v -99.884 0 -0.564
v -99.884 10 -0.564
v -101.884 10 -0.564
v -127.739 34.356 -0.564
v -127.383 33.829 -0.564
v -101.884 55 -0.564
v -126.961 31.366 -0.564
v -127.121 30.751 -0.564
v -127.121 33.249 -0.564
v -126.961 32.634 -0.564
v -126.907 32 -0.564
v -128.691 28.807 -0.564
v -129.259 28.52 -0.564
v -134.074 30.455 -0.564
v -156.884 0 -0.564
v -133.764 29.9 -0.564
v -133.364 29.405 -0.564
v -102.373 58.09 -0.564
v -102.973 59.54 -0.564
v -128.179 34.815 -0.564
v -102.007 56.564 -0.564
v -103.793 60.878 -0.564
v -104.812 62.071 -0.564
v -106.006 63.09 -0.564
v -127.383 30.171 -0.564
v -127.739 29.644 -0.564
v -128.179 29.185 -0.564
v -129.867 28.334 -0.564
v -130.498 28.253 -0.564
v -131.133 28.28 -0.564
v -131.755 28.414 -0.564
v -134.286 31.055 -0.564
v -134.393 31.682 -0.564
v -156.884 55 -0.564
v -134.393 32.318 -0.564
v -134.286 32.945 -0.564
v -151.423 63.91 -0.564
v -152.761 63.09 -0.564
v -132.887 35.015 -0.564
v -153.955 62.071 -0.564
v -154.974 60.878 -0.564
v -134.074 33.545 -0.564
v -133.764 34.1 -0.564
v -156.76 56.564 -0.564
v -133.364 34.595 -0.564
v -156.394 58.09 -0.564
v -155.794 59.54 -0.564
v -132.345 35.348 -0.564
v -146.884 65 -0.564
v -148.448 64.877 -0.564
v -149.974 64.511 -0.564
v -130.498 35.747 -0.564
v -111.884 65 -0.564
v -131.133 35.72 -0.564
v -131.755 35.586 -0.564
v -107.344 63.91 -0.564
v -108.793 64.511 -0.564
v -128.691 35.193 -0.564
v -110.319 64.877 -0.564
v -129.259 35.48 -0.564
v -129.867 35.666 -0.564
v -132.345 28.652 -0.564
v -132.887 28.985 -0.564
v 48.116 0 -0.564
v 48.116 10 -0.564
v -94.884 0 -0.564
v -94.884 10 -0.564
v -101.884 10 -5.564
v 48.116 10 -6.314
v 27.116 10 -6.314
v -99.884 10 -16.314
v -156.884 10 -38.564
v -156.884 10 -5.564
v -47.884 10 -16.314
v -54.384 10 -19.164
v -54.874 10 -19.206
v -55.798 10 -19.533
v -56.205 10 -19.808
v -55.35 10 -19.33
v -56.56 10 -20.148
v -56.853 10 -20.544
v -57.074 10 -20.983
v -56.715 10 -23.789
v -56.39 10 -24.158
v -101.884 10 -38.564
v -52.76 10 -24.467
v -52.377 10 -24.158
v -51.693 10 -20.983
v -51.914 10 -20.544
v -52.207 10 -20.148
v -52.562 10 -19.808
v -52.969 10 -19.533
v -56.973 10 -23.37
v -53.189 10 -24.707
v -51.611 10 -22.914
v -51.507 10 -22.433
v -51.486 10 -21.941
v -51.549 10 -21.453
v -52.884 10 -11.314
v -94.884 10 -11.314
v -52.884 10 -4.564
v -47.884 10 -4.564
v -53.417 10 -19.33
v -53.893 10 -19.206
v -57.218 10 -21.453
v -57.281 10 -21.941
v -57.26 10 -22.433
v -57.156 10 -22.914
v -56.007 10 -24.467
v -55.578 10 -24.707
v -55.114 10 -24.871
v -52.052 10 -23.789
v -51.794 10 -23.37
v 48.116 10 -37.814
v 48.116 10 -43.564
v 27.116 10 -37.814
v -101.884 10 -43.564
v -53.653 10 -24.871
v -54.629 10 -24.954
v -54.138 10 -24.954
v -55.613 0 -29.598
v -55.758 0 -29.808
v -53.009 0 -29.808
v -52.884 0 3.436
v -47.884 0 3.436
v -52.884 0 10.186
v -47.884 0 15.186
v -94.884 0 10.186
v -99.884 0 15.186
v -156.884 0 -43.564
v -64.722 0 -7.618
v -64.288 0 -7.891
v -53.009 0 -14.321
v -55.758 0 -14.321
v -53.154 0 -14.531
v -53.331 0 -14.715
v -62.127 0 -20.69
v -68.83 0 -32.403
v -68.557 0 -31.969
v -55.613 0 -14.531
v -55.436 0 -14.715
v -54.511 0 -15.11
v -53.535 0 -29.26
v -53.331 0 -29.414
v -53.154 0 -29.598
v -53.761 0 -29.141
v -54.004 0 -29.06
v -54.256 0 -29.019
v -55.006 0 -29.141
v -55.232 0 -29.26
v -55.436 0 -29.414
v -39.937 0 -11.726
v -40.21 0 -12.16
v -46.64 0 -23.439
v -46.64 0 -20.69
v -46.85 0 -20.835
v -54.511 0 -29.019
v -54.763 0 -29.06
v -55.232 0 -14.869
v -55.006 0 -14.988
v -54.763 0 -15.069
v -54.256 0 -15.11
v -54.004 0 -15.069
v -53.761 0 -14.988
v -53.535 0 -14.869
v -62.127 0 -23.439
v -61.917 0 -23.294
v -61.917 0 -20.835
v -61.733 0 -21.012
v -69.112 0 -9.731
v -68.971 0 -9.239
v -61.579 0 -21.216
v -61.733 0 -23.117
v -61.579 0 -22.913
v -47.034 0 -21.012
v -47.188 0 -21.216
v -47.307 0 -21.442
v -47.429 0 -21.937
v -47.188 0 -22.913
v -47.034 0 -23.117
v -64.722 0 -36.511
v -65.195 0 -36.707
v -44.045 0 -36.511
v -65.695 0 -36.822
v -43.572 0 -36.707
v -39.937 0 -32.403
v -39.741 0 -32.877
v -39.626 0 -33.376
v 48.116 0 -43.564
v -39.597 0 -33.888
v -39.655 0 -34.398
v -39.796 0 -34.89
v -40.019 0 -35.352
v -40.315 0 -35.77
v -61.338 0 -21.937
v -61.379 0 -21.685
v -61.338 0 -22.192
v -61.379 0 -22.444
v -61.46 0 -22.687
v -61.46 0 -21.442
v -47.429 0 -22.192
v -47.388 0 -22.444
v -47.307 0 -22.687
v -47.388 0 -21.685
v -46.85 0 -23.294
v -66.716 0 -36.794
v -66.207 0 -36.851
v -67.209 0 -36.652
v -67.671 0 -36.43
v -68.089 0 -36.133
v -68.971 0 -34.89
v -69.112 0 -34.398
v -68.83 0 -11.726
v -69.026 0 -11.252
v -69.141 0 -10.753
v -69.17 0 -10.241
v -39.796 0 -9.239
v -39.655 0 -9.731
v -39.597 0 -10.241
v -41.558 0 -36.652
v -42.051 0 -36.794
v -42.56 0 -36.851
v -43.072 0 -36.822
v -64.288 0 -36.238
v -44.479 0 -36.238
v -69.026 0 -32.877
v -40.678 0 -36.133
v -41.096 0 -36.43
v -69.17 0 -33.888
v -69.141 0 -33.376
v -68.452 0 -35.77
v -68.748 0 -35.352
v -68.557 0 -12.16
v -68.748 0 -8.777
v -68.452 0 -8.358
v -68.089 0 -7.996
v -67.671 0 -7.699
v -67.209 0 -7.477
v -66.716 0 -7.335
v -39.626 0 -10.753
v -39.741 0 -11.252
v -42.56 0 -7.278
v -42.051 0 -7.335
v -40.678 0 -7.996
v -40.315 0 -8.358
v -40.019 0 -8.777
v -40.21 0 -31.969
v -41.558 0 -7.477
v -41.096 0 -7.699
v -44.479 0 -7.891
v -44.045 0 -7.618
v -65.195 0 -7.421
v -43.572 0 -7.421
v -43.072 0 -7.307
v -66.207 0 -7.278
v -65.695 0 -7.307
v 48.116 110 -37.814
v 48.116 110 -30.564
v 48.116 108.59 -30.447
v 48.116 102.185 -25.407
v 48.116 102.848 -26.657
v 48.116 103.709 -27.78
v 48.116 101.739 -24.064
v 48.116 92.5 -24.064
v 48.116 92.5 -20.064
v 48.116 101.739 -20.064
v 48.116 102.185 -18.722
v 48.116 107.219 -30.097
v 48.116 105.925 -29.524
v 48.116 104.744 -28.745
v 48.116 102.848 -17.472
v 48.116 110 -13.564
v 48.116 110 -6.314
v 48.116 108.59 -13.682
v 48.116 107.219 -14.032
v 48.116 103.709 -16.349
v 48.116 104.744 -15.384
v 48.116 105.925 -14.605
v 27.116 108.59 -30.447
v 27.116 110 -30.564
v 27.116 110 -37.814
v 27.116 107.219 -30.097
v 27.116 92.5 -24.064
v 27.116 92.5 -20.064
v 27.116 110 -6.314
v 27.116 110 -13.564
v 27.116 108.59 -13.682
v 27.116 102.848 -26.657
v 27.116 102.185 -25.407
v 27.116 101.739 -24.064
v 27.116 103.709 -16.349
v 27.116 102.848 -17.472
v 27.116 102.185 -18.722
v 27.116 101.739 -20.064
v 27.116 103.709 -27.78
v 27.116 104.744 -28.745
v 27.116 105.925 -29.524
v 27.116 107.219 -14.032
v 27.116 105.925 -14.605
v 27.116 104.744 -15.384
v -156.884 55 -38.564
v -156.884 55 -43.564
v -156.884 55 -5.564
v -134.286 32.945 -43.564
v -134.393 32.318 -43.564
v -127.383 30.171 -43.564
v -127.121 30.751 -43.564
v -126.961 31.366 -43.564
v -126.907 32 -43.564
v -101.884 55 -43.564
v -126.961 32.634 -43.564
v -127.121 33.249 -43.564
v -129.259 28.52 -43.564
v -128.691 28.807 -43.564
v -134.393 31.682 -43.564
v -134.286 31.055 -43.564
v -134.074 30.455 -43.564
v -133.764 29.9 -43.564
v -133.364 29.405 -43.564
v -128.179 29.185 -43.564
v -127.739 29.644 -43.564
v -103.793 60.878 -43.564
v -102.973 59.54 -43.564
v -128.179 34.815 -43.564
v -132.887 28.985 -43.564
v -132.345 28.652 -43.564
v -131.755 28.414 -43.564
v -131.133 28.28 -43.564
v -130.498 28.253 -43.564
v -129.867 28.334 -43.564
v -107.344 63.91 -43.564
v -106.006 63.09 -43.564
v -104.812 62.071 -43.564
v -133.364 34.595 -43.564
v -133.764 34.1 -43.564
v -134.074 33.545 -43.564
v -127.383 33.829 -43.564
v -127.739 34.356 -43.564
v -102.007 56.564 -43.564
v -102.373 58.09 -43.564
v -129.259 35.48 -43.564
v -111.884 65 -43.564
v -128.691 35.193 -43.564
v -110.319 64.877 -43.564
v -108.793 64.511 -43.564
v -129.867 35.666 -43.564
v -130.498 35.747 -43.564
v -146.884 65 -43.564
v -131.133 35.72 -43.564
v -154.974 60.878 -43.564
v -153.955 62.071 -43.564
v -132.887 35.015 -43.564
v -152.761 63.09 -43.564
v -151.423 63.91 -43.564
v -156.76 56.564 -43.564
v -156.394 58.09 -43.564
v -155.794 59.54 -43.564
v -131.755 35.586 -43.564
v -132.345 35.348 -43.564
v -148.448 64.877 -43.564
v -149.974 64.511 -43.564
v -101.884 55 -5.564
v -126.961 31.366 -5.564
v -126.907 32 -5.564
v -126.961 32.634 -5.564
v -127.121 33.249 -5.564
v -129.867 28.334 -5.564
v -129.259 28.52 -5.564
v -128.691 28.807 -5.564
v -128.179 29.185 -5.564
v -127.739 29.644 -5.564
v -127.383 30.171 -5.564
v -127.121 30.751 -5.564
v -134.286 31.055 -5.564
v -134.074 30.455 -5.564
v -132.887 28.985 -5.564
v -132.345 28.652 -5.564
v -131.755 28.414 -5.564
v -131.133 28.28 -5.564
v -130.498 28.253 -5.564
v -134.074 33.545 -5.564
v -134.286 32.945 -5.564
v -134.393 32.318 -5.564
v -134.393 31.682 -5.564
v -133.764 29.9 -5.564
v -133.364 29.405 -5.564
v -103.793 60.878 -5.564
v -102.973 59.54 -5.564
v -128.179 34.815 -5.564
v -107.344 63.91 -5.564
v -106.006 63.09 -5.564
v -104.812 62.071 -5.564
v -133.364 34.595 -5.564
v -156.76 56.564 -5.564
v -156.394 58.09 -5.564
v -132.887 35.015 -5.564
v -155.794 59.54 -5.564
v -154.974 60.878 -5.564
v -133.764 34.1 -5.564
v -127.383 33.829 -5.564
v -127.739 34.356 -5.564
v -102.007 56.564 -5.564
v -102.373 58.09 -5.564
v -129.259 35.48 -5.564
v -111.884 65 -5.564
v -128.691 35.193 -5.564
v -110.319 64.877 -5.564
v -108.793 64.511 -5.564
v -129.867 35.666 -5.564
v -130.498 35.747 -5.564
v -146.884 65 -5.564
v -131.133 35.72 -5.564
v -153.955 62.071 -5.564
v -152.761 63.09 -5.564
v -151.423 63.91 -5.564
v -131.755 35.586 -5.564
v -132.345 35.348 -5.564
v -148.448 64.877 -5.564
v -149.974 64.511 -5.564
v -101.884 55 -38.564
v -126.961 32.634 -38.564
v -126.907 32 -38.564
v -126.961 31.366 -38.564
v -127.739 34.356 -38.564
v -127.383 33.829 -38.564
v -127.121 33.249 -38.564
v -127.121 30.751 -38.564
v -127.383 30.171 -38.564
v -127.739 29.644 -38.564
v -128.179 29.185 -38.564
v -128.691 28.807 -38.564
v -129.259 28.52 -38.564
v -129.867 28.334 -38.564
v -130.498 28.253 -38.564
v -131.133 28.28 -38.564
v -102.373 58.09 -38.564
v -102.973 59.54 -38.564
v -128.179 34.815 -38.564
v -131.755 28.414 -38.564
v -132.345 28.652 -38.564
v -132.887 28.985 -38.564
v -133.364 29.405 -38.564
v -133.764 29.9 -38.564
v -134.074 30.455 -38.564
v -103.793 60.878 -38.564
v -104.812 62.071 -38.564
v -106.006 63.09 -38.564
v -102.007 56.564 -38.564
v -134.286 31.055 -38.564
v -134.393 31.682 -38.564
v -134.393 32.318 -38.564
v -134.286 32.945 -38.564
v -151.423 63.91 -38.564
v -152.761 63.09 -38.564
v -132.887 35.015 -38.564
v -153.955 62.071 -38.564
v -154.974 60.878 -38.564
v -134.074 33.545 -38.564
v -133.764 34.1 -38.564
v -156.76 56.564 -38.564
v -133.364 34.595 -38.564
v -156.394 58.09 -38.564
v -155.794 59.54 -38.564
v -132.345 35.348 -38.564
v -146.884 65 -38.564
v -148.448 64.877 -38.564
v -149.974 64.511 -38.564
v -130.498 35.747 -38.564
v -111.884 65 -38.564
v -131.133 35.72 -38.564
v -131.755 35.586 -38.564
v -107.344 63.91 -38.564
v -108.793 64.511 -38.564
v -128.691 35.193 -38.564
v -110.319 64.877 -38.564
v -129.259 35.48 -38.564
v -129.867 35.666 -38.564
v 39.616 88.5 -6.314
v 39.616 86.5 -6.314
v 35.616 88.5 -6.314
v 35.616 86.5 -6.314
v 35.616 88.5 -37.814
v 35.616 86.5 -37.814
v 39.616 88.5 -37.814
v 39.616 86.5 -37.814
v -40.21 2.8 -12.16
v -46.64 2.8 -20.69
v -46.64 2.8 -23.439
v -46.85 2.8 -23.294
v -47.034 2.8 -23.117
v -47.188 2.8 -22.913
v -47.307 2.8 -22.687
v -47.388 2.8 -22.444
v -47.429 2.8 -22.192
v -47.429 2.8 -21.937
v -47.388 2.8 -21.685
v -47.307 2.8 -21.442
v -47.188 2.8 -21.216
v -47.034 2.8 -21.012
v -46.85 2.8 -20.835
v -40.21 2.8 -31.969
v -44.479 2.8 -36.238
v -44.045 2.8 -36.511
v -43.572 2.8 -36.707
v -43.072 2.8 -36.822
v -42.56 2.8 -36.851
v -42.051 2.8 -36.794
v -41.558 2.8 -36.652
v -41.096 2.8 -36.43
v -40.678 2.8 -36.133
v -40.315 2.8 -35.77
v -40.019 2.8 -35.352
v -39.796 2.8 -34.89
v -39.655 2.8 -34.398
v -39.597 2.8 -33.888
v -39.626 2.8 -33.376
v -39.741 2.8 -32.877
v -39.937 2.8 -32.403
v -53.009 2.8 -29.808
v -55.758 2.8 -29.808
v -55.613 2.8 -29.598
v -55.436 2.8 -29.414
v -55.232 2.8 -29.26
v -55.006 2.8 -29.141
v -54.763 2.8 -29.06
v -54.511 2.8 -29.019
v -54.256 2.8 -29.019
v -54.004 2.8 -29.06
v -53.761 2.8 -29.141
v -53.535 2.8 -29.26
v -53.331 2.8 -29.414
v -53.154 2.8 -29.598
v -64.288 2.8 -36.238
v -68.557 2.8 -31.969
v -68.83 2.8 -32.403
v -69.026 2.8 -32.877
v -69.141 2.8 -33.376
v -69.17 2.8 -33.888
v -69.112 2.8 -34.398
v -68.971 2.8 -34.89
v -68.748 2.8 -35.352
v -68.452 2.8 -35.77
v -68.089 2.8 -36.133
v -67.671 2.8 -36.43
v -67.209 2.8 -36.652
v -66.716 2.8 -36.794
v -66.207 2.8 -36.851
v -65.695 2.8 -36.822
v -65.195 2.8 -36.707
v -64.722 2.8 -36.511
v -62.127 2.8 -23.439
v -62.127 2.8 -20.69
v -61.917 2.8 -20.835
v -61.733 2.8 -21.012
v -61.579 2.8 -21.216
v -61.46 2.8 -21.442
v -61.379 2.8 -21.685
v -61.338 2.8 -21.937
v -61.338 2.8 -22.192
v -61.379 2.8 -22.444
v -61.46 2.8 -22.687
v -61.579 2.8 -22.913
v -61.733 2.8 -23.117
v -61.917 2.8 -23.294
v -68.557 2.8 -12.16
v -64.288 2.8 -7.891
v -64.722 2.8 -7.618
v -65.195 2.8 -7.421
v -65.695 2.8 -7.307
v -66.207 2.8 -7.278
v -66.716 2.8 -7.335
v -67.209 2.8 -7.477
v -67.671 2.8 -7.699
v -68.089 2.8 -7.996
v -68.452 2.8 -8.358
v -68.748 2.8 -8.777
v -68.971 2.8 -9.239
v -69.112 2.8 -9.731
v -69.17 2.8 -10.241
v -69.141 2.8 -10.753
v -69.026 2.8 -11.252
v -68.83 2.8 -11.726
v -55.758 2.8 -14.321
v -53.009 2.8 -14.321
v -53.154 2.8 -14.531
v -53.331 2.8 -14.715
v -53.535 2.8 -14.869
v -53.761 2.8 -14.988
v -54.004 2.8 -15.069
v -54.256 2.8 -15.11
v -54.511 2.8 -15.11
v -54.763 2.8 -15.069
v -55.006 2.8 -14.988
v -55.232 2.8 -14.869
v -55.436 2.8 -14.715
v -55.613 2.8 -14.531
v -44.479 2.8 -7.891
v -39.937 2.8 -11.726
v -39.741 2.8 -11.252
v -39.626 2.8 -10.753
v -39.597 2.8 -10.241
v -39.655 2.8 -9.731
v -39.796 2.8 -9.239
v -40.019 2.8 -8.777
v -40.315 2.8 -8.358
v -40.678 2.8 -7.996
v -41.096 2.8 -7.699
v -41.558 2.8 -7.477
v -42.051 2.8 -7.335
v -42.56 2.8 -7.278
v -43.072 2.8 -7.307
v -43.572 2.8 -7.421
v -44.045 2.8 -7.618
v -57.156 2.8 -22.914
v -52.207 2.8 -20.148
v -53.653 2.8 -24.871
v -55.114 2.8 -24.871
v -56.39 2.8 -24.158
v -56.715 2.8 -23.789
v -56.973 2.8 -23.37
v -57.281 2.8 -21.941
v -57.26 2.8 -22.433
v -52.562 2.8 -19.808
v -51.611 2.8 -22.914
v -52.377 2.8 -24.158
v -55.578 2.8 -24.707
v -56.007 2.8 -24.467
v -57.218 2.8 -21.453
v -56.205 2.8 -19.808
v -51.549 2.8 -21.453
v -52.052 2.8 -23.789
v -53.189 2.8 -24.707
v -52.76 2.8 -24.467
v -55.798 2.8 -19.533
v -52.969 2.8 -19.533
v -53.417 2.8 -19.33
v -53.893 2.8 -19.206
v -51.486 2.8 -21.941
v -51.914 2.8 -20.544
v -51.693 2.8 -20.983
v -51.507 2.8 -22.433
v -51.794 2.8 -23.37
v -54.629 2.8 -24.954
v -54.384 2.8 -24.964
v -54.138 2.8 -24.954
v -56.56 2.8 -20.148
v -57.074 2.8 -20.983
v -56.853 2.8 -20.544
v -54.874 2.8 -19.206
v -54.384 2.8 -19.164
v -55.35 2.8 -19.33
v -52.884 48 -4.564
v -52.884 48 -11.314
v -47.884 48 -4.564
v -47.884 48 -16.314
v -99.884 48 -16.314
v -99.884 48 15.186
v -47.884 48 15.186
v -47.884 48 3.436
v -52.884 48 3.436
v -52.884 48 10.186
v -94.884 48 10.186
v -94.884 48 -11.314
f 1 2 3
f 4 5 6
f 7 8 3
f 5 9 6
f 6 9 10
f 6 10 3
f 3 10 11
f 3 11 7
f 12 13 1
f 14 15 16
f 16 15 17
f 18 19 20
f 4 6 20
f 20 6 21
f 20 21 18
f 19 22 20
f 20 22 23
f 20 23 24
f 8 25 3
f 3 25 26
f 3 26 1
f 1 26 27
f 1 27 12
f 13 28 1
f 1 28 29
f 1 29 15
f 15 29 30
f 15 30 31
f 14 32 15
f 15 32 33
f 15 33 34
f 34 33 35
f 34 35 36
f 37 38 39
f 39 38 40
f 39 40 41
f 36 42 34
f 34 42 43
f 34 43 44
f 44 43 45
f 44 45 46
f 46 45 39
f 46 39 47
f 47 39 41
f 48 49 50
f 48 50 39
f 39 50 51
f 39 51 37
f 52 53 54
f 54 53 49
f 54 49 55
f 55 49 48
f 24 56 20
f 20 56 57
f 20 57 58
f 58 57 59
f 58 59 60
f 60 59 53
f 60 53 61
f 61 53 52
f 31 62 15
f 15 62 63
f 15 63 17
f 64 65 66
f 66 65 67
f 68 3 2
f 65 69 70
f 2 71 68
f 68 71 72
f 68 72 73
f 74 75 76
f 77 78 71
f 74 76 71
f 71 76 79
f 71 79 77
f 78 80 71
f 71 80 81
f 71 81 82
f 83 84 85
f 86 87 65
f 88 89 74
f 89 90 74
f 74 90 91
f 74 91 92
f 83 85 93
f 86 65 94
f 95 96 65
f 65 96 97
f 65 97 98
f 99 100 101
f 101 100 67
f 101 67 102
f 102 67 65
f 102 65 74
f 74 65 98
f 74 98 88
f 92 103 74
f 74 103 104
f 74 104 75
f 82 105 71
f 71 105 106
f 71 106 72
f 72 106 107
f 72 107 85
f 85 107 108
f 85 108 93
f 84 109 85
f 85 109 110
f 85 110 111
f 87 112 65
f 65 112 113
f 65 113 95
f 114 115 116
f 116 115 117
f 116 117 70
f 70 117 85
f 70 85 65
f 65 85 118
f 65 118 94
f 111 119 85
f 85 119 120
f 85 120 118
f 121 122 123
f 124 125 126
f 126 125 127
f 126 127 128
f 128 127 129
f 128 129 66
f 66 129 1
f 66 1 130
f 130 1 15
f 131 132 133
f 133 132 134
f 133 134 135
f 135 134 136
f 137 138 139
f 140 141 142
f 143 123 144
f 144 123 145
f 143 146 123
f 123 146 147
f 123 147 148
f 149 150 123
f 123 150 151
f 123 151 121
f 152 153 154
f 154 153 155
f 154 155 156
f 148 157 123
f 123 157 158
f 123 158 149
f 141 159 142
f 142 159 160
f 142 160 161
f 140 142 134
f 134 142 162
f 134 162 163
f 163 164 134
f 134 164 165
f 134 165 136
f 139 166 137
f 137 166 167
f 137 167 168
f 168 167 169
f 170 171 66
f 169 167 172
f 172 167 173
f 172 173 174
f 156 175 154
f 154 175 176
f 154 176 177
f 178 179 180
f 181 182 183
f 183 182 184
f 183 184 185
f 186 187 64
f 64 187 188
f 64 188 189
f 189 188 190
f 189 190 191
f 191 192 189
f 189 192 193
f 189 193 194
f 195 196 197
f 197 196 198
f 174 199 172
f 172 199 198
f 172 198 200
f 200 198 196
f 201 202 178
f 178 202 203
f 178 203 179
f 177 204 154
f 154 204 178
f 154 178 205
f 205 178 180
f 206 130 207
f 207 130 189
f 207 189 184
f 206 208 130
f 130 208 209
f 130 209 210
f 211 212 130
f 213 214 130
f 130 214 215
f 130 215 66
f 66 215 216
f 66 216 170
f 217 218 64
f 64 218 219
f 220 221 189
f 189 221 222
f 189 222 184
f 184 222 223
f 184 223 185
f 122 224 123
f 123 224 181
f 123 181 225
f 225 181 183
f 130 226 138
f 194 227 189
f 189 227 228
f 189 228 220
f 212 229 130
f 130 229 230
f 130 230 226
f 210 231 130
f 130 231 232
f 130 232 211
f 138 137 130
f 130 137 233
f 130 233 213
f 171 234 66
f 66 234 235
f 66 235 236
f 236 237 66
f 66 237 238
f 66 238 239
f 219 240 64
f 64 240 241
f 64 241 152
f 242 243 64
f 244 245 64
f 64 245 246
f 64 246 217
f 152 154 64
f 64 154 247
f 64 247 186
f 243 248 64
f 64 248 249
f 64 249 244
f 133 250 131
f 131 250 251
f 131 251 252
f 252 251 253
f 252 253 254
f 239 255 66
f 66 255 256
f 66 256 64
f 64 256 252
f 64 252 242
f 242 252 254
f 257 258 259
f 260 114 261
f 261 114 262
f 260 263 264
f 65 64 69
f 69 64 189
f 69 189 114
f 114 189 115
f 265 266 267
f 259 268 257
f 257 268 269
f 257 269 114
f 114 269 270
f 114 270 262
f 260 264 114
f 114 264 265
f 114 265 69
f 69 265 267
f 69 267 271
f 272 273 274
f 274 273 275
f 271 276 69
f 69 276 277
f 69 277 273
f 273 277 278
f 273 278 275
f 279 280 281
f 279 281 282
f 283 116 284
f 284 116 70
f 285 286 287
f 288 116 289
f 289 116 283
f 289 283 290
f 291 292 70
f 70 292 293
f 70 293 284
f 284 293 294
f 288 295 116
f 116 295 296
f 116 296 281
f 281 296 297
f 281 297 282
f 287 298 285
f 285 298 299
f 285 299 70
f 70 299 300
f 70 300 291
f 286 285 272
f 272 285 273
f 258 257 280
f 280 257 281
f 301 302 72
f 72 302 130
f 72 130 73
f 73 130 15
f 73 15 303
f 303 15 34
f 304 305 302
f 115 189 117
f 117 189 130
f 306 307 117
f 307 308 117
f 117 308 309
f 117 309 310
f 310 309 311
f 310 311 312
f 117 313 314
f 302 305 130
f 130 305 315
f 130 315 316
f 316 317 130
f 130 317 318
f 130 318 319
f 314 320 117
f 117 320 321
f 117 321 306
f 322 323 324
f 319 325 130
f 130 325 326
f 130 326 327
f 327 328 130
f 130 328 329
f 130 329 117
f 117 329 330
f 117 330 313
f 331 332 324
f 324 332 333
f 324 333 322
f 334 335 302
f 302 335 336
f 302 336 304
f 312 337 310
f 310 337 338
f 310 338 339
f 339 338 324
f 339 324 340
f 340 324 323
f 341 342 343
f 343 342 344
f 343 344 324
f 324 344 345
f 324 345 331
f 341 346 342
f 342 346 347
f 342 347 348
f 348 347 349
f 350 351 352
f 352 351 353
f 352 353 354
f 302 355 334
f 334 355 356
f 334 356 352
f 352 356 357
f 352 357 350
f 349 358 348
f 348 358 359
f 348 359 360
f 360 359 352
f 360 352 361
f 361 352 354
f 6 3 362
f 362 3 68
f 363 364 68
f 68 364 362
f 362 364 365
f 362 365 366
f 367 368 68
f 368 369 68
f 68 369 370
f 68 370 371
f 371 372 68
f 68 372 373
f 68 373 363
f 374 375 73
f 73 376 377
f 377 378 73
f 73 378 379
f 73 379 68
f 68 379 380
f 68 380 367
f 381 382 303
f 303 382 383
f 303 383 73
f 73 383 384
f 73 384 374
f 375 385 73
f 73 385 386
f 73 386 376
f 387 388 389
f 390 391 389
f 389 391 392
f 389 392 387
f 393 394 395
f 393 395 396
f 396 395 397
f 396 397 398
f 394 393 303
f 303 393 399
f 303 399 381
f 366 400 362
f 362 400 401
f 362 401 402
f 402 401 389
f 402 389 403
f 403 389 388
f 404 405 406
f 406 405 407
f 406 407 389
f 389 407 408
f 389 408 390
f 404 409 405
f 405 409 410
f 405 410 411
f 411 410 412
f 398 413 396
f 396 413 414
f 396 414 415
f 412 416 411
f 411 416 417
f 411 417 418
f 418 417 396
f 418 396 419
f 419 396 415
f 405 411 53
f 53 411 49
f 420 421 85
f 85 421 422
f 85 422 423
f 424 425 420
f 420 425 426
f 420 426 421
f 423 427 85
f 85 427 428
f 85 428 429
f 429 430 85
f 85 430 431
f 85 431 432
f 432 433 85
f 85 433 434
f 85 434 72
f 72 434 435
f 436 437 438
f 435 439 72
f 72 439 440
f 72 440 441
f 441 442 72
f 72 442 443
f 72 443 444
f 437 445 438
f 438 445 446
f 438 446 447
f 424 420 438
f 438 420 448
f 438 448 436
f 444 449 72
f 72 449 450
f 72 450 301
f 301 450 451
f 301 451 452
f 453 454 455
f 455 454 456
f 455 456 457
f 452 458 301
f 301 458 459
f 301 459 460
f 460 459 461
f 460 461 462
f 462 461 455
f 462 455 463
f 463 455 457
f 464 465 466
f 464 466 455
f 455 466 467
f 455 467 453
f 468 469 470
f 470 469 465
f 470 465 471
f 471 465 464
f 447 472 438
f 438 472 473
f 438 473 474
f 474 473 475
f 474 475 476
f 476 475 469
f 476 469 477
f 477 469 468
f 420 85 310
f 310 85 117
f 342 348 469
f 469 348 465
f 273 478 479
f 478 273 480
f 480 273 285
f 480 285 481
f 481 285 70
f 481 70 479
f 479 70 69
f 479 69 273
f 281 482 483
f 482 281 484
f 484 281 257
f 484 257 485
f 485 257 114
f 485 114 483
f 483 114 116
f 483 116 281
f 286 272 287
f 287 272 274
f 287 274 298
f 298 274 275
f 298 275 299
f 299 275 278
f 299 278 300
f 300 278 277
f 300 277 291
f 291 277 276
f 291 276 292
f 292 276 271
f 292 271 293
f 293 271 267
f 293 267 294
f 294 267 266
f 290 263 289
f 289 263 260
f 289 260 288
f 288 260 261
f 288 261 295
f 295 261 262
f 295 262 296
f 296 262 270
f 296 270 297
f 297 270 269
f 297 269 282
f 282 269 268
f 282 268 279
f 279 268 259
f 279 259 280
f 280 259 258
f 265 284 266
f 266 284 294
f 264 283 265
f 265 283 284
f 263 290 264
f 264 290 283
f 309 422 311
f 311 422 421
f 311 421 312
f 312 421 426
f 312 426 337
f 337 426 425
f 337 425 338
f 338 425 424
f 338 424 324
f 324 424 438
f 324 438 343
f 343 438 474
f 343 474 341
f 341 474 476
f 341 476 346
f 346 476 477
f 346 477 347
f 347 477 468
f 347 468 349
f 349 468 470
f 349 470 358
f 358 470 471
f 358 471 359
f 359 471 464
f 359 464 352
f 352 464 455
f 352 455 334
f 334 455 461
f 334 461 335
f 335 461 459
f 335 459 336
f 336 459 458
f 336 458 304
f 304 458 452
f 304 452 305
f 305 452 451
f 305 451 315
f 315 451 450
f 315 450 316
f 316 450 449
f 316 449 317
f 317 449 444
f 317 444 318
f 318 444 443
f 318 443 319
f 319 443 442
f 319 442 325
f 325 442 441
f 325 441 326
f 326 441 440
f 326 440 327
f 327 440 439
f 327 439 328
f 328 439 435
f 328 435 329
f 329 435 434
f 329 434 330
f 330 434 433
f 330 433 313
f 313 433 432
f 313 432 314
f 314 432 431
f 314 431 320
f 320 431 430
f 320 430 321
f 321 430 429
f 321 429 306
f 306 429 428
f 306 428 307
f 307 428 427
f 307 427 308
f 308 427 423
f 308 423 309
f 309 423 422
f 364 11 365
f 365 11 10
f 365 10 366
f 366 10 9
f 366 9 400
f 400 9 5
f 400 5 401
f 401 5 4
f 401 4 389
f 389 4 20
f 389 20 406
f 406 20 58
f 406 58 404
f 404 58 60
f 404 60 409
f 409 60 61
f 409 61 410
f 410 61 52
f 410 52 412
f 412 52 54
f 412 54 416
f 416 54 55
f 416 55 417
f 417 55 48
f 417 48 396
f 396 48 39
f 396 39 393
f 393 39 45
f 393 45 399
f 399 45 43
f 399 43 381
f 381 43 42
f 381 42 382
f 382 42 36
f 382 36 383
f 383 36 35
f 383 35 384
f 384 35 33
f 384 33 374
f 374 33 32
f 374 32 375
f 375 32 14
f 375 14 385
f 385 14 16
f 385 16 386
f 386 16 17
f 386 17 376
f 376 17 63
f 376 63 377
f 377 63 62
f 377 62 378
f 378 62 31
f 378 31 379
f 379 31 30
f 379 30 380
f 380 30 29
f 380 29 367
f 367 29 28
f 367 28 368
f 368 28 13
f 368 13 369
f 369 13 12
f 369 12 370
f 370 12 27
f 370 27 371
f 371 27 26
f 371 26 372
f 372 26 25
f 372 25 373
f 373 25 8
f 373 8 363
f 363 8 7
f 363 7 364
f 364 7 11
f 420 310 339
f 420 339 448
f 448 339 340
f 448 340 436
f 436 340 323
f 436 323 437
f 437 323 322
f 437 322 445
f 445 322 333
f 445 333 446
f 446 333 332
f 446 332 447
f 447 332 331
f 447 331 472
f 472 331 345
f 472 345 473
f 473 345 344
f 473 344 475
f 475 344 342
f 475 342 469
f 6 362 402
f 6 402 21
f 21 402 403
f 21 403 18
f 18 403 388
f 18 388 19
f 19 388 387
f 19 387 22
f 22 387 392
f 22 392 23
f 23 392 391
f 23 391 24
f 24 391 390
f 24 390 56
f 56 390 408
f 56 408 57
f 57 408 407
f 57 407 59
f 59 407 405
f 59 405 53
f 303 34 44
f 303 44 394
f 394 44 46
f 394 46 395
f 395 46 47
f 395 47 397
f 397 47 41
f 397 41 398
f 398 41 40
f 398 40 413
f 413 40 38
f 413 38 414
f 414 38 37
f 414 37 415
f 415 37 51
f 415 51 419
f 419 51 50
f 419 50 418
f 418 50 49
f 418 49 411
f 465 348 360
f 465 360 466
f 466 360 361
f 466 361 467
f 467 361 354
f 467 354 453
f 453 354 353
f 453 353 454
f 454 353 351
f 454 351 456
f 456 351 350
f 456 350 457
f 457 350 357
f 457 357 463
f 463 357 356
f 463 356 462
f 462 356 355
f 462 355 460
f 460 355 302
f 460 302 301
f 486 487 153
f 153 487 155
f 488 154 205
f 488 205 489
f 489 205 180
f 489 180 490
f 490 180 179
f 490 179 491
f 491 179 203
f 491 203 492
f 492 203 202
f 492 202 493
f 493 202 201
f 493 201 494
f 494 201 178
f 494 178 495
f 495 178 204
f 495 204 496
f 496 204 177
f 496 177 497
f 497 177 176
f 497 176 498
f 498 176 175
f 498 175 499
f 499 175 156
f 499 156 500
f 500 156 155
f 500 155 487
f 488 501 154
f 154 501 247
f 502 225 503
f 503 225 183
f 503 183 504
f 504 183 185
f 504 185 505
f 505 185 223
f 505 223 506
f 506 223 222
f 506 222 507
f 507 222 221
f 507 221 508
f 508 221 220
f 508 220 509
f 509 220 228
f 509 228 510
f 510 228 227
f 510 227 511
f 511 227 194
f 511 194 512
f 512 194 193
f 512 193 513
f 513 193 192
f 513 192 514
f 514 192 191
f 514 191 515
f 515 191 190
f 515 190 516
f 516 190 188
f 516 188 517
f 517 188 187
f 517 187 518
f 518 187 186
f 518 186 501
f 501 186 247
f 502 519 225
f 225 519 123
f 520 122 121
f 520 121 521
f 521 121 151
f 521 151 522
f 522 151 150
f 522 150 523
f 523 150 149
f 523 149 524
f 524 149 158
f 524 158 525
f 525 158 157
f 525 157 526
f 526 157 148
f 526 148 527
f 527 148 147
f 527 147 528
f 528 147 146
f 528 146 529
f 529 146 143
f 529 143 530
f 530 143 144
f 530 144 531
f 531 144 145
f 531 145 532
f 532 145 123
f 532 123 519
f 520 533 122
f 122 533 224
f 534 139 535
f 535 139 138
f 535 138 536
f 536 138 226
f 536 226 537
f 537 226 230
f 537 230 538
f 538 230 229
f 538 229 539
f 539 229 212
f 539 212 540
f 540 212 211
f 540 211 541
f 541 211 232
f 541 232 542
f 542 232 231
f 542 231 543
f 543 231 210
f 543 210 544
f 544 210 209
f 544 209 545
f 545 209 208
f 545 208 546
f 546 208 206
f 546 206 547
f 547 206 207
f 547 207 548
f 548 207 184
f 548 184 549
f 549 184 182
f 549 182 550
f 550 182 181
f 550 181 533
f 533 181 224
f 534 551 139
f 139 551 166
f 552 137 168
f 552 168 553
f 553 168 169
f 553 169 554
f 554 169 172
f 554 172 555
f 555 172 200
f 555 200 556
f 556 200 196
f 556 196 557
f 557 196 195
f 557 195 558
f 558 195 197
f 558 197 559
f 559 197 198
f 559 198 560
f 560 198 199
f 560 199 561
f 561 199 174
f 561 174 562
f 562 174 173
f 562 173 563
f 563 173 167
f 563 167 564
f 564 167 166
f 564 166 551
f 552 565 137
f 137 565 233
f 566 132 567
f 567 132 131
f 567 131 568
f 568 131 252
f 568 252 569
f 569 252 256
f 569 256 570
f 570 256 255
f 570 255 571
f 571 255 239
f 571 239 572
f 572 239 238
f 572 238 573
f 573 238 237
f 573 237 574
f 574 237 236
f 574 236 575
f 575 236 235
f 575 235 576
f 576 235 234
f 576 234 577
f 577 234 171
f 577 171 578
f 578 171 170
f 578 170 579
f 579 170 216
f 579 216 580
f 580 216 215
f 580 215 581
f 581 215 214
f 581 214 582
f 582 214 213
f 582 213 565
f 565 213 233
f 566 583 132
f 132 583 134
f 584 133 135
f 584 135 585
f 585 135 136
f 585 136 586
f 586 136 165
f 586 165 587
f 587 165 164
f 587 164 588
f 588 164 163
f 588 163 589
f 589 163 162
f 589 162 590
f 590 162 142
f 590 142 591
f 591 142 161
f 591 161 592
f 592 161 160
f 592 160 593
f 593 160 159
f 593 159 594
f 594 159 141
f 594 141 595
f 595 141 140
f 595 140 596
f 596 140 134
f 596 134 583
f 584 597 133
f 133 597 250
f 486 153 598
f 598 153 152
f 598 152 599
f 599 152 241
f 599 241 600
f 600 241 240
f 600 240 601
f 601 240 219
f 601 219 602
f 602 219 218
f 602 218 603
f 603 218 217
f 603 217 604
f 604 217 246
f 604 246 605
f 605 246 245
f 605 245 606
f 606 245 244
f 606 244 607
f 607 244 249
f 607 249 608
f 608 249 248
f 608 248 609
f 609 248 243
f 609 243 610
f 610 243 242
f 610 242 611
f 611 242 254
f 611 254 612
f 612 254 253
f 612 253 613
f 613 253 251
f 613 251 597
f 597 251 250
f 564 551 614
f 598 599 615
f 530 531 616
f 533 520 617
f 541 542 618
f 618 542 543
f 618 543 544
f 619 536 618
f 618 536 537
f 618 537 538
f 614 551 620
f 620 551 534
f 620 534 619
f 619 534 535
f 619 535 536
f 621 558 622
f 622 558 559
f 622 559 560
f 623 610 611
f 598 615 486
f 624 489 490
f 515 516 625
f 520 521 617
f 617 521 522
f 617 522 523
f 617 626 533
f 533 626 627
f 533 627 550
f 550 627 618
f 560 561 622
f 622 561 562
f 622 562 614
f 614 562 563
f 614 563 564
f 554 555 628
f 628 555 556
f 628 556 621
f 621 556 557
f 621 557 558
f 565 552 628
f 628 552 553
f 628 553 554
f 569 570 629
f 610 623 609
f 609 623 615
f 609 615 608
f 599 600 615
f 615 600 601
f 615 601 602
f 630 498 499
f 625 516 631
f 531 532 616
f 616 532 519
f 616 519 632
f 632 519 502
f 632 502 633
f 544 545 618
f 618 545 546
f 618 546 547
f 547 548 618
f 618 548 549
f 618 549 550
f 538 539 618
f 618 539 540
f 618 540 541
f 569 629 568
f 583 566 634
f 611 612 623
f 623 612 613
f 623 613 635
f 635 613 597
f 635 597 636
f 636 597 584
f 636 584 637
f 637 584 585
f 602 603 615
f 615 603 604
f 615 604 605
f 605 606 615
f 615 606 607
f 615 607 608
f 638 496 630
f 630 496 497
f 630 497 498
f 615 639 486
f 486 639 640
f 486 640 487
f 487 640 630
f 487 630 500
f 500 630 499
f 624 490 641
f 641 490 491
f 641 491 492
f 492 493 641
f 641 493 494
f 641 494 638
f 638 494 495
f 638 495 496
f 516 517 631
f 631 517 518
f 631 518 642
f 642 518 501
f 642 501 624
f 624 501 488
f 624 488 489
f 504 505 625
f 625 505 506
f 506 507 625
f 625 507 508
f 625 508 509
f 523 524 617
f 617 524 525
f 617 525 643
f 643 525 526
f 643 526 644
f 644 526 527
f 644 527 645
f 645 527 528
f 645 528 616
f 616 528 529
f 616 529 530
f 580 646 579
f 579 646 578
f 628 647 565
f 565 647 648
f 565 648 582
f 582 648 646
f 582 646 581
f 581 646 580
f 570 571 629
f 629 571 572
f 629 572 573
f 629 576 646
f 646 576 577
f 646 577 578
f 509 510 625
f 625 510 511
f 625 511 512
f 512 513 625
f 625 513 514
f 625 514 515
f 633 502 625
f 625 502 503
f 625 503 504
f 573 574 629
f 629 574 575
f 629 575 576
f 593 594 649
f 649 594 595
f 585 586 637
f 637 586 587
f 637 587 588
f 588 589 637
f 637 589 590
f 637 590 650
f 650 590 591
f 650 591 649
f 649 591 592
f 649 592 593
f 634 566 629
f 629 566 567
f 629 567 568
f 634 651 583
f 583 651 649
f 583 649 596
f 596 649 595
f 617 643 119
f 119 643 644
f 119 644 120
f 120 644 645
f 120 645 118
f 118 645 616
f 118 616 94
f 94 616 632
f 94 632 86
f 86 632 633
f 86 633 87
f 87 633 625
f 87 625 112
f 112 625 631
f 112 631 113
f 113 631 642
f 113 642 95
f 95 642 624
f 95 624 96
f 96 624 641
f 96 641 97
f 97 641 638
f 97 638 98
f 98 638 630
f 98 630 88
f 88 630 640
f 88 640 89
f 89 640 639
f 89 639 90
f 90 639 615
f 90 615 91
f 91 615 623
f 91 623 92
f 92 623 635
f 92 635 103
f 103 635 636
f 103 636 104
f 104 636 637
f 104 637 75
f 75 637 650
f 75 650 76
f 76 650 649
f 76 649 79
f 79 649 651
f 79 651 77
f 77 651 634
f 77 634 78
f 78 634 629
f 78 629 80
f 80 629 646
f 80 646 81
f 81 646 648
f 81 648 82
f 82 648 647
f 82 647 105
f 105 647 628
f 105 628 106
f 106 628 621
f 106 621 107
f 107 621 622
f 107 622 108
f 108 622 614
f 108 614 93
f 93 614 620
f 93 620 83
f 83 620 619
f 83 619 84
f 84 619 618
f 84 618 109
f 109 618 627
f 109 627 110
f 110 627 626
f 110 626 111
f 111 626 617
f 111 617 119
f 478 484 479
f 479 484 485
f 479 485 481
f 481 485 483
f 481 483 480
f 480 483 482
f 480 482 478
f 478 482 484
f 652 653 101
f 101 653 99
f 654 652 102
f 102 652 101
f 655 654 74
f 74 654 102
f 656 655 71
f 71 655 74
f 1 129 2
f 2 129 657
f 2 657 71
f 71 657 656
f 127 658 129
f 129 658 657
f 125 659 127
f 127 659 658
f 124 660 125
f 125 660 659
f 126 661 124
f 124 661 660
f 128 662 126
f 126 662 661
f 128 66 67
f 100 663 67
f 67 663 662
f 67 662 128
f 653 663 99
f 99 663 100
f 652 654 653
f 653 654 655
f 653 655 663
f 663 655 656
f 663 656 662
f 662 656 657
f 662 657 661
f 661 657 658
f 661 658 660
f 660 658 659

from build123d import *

# Parameters (mm, degrees)
SKETCH1_W           = 205
SKETCH1_H           = 43
BOSS_EXTRUDE1_DEPTH = 10
SKETCH4_W           = 55
SKETCH4_H           = 5
BOSS_EXTRUDE2_DEPTH = 55
SKETCH5_W           = 21
SKETCH5_H           = 31.5
BARREL_STAND_DEPTH  = 100
CUT_EXTRUDE4_DEPTH  = 21
SKETCH7_R           = 3.75
BOLT_HOLE_DEPTH     = 197.370661061
FILLET3_R           = 10
CUT_EXTRUDE9_DEPTH  = 2.8
SKETCH12_R          = 2.9
CUT_EXTRUDE10_DEPTH = 10
SKETCH13_W          = 4
SKETCH13_H          = 2
ZIP_TIE_SLOT_DEPTH  = 196.192210464
BOSS_EXTRUDE3_DEPTH = 38
BOSS_EXTRUDE4_DEPTH = 10


with BuildPart() as part:
    # Sketch1 → Boss-Extrude1 (new body)
    with BuildSketch(Plane(origin=(0, 0, 0), x_dir=(1, 0, 0), z_dir=(0, 1, 0))):
        with Locations((-54.3835126, 22.064427358)):
            Rectangle(SKETCH1_W, SKETCH1_H)
    extrude(amount=BOSS_EXTRUDE1_DEPTH)

    # Sketch4 → Boss-Extrude2 (add)
    with BuildSketch(Plane(origin=(0, 10, 0), x_dir=(1, 0, 0), z_dir=(0, 1, 0))):
        with Locations((-129.3835126, 3.064427358)):
            Rectangle(SKETCH4_W, SKETCH4_H)
    boss_extrude2 = extrude(amount=BOSS_EXTRUDE2_DEPTH)

    # Mirror1: Boss-Extrude2 across plane
    add(boss_extrude2.mirror(Plane.XY.offset(-22.064427358)))

    # Sketch5 → Barrel Stand (add)
    with BuildSketch(Plane(origin=(0, 10, 0), x_dir=(1, 0, 0), z_dir=(0, 1, 0))):
        with Locations((37.6164874, 22.064427358)):
            Rectangle(SKETCH5_W, SKETCH5_H)
    extrude(amount=BARREL_STAND_DEPTH)

    # Sketch6 → Cut-Extrude4 (cut)
    with BuildSketch(Plane(origin=(48.1164874, 0, 10.302060042), x_dir=(0, 0, 1), z_dir=(-1, 0, 0))):
        with BuildLine():
            Line((-34.3664874, 92.5), (-30.3664874, 92.5))
            Line((-30.3664874, 92.5), (-30.3664874, 101.738644179))
            ThreePointArc((-30.3664874, 101.738644179), (-32.3664874, 118.5), (-34.3664874, 101.738644179))
            Line((-34.3664874, 101.738644179), (-34.3664874, 92.5))
        make_face()
    extrude(amount=CUT_EXTRUDE4_DEPTH, mode=Mode.SUBTRACT)

    # Sketch7 → Bolt Hole (cut, through all)
    with BuildSketch(Plane.XY.offset(-0.564427358)):
        with Locations((-130.656969182, 32)):
            Circle(SKETCH7_R)
    extrude(amount=-BOLT_HOLE_DEPTH, mode=Mode.SUBTRACT)

    # Fillet3
    fillet3_edges = [part.edges().sort_by_distance(p)[0] for p in [
        (-156.8835126, 65, -3.064427358),
        (-101.8835126, 65, -3.064427358),
        (-156.8835126, 65, -41.064427358),
        (-101.8835126, 65, -41.064427358),
    ]]
    fillet(fillet3_edges, radius=FILLET3_R)

    # Sketch11 → Cut-Extrude9 (cut)
    # profile 1 of 2: a face of its own
    with BuildSketch(Plane.XZ):
        with BuildLine():
            Line((-40.210281565, -12.15972992), (-46.639894467, -20.689656856))
            ThreePointArc((-46.639894467, -20.689656856), (-47.433748895, -22.064427358), (-46.639894467, -23.43919786))
            Line((-46.639894467, -23.43919786), (-40.210281565, -31.969124796))
            ThreePointArc((-40.210281565, -31.969124796), (-40.489047819, -35.959259074), (-44.479189458, -36.237919954))
            Line((-44.479189458, -36.237919954), (-53.008957608, -29.808073492))
            ThreePointArc((-53.008957608, -29.808073492), (-54.3835126, -29.014191063), (-55.758067592, -29.808073492))
            Line((-55.758067592, -29.808073492), (-64.287835742, -36.237919954))
            ThreePointArc((-64.287835742, -36.237919954), (-68.277977381, -35.959259074), (-68.556743635, -31.969124796))
            Line((-68.556743635, -31.969124796), (-62.127130733, -23.43919786))
            ThreePointArc((-62.127130733, -23.43919786), (-61.333276305, -22.064427358), (-62.127130733, -20.689656856))
            Line((-62.127130733, -20.689656856), (-68.556743635, -12.15972992))
            ThreePointArc((-68.556743635, -12.15972992), (-68.277977381, -8.169595641), (-64.287835742, -7.890934761))
            Line((-64.287835742, -7.890934761), (-55.758067592, -14.320781224))
            ThreePointArc((-55.758067592, -14.320781224), (-54.3835126, -15.114663653), (-53.008957608, -14.320781224))
            Line((-53.008957608, -14.320781224), (-44.479189458, -7.890934761))
            ThreePointArc((-44.479189458, -7.890934761), (-40.489047819, -8.169595641), (-40.210281565, -12.15972992))
        make_face()
        with BuildLine():
            ThreePointArc((-52.857065356, -14.456741186), (-54.3835126, -15.314663653), (-55.909959844, -14.456741186))
            Line((-55.909959844, -14.456741186), (-64.40822508, -8.050642017))
            ThreePointArc((-64.40822508, -8.050642017), (-68.136557893, -8.311018864), (-68.3970332, -12.0393448))
            Line((-68.3970332, -12.0393448), (-61.991158458, -20.537779207))
            ThreePointArc((-61.991158458, -20.537779207), (-61.133276305, -22.064427358), (-61.991158458, -23.591075508))
            Line((-61.991158458, -23.591075508), (-68.3970332, -32.089509915))
            ThreePointArc((-68.3970332, -32.089509915), (-68.136557893, -35.817835851), (-64.40822508, -36.078212699))
            Line((-64.40822508, -36.078212699), (-55.909959844, -29.672113529))
            ThreePointArc((-55.909959844, -29.672113529), (-54.3835126, -28.814191063), (-52.857065356, -29.672113529))
            Line((-52.857065356, -29.672113529), (-44.35880012, -36.078212699))
            ThreePointArc((-44.35880012, -36.078212699), (-40.630467307, -35.817835851), (-40.369992, -32.089509915))
            Line((-40.369992, -32.089509915), (-46.775866742, -23.591075508))
            ThreePointArc((-46.775866742, -23.591075508), (-47.633748895, -22.064427358), (-46.775866742, -20.537779207))
            Line((-46.775866742, -20.537779207), (-40.369992, -12.0393448))
            ThreePointArc((-40.369992, -12.0393448), (-40.630467307, -8.311018864), (-44.35880012, -8.050642017))
            Line((-44.35880012, -8.050642017), (-52.857065356, -14.456741186))
        make_face(mode=Mode.SUBTRACT)
    # profile 2 of 2: a face of its own
    with BuildSketch(Plane.XZ):
        with BuildLine():
            Line((-44.35880012, -8.050642017), (-52.857065356, -14.456741186))
            ThreePointArc((-52.857065356, -14.456741186), (-54.3835126, -15.314663653), (-55.909959844, -14.456741186))
            Line((-55.909959844, -14.456741186), (-64.40822508, -8.050642017))
            ThreePointArc((-64.40822508, -8.050642017), (-68.136557893, -8.311018864), (-68.3970332, -12.0393448))
            Line((-68.3970332, -12.0393448), (-61.991158458, -20.537779207))
            ThreePointArc((-61.991158458, -20.537779207), (-61.133276305, -22.064427358), (-61.991158458, -23.591075508))
            Line((-61.991158458, -23.591075508), (-68.3970332, -32.089509915))
            ThreePointArc((-68.3970332, -32.089509915), (-68.136557893, -35.817835851), (-64.40822508, -36.078212699))
            Line((-64.40822508, -36.078212699), (-55.909959844, -29.672113529))
            ThreePointArc((-55.909959844, -29.672113529), (-54.3835126, -28.814191063), (-52.857065356, -29.672113529))
            Line((-52.857065356, -29.672113529), (-44.35880012, -36.078212699))
            ThreePointArc((-44.35880012, -36.078212699), (-40.630467307, -35.817835851), (-40.369992, -32.089509915))
            Line((-40.369992, -32.089509915), (-46.775866742, -23.591075508))
            ThreePointArc((-46.775866742, -23.591075508), (-47.633748895, -22.064427358), (-46.775866742, -20.537779207))
            Line((-46.775866742, -20.537779207), (-40.369992, -12.0393448))
            ThreePointArc((-40.369992, -12.0393448), (-40.630467307, -8.311018864), (-44.35880012, -8.050642017))
        make_face()
    extrude(amount=-CUT_EXTRUDE9_DEPTH, mode=Mode.SUBTRACT)

    # Sketch12 → Cut-Extrude10 (cut)
    with BuildSketch(Plane(origin=(0, 10, 0), x_dir=(1, 0, 0), z_dir=(0, 1, 0))):
        with Locations(Location((-54.3835126, 22.064427358, 0), (0, 0, 270))):
            Circle(SKETCH12_R)
    extrude(amount=-CUT_EXTRUDE10_DEPTH, mode=Mode.SUBTRACT)

    # Sketch13 → Zip Tie Slot (cut, through all)
    with BuildSketch(Plane.XY.offset(-6.314427358)):
        with Locations((37.6164874, 87.5)):
            Rectangle(SKETCH13_W, SKETCH13_H)
    extrude(amount=-ZIP_TIE_SLOT_DEPTH, mode=Mode.SUBTRACT)

    # Sketch14 → Boss-Extrude3 (add)
    with BuildSketch(Plane(origin=(0, 10, 0), x_dir=(1, 0, 0), z_dir=(0, 1, 0))):
        Polygon((-94.8835126, -10.185572642), (-52.8835126, -10.185572642), (-52.8835126, -3.435572642), (-47.8835126, -3.435572642), (-47.8835126, -15.185572642), (-99.8835126, -15.185572642), (-99.8835126, 16.314427358), (-47.8835126, 16.314427358), (-47.8835126, 4.564427358), (-52.8835126, 4.564427358), (-52.8835126, 11.314427358), (-94.8835126, 11.314427358), align=None)
    extrude(amount=BOSS_EXTRUDE3_DEPTH)

    # Sketch15 → Boss-Extrude4 (add)
    with BuildSketch(Plane.XZ.offset(-10)):
        Polygon((-47.8835126, 15.185572642), (-99.8835126, 15.185572642), (-99.8835126, -0.564427358), (-94.8835126, -0.564427358), (-94.8835126, 10.185572642), (-52.8835126, 10.185572642), (-52.8835126, 3.435572642), (-47.8835126, 3.435572642), align=None)
    extrude(amount=BOSS_EXTRUDE4_DEPTH)


solid = part.part
